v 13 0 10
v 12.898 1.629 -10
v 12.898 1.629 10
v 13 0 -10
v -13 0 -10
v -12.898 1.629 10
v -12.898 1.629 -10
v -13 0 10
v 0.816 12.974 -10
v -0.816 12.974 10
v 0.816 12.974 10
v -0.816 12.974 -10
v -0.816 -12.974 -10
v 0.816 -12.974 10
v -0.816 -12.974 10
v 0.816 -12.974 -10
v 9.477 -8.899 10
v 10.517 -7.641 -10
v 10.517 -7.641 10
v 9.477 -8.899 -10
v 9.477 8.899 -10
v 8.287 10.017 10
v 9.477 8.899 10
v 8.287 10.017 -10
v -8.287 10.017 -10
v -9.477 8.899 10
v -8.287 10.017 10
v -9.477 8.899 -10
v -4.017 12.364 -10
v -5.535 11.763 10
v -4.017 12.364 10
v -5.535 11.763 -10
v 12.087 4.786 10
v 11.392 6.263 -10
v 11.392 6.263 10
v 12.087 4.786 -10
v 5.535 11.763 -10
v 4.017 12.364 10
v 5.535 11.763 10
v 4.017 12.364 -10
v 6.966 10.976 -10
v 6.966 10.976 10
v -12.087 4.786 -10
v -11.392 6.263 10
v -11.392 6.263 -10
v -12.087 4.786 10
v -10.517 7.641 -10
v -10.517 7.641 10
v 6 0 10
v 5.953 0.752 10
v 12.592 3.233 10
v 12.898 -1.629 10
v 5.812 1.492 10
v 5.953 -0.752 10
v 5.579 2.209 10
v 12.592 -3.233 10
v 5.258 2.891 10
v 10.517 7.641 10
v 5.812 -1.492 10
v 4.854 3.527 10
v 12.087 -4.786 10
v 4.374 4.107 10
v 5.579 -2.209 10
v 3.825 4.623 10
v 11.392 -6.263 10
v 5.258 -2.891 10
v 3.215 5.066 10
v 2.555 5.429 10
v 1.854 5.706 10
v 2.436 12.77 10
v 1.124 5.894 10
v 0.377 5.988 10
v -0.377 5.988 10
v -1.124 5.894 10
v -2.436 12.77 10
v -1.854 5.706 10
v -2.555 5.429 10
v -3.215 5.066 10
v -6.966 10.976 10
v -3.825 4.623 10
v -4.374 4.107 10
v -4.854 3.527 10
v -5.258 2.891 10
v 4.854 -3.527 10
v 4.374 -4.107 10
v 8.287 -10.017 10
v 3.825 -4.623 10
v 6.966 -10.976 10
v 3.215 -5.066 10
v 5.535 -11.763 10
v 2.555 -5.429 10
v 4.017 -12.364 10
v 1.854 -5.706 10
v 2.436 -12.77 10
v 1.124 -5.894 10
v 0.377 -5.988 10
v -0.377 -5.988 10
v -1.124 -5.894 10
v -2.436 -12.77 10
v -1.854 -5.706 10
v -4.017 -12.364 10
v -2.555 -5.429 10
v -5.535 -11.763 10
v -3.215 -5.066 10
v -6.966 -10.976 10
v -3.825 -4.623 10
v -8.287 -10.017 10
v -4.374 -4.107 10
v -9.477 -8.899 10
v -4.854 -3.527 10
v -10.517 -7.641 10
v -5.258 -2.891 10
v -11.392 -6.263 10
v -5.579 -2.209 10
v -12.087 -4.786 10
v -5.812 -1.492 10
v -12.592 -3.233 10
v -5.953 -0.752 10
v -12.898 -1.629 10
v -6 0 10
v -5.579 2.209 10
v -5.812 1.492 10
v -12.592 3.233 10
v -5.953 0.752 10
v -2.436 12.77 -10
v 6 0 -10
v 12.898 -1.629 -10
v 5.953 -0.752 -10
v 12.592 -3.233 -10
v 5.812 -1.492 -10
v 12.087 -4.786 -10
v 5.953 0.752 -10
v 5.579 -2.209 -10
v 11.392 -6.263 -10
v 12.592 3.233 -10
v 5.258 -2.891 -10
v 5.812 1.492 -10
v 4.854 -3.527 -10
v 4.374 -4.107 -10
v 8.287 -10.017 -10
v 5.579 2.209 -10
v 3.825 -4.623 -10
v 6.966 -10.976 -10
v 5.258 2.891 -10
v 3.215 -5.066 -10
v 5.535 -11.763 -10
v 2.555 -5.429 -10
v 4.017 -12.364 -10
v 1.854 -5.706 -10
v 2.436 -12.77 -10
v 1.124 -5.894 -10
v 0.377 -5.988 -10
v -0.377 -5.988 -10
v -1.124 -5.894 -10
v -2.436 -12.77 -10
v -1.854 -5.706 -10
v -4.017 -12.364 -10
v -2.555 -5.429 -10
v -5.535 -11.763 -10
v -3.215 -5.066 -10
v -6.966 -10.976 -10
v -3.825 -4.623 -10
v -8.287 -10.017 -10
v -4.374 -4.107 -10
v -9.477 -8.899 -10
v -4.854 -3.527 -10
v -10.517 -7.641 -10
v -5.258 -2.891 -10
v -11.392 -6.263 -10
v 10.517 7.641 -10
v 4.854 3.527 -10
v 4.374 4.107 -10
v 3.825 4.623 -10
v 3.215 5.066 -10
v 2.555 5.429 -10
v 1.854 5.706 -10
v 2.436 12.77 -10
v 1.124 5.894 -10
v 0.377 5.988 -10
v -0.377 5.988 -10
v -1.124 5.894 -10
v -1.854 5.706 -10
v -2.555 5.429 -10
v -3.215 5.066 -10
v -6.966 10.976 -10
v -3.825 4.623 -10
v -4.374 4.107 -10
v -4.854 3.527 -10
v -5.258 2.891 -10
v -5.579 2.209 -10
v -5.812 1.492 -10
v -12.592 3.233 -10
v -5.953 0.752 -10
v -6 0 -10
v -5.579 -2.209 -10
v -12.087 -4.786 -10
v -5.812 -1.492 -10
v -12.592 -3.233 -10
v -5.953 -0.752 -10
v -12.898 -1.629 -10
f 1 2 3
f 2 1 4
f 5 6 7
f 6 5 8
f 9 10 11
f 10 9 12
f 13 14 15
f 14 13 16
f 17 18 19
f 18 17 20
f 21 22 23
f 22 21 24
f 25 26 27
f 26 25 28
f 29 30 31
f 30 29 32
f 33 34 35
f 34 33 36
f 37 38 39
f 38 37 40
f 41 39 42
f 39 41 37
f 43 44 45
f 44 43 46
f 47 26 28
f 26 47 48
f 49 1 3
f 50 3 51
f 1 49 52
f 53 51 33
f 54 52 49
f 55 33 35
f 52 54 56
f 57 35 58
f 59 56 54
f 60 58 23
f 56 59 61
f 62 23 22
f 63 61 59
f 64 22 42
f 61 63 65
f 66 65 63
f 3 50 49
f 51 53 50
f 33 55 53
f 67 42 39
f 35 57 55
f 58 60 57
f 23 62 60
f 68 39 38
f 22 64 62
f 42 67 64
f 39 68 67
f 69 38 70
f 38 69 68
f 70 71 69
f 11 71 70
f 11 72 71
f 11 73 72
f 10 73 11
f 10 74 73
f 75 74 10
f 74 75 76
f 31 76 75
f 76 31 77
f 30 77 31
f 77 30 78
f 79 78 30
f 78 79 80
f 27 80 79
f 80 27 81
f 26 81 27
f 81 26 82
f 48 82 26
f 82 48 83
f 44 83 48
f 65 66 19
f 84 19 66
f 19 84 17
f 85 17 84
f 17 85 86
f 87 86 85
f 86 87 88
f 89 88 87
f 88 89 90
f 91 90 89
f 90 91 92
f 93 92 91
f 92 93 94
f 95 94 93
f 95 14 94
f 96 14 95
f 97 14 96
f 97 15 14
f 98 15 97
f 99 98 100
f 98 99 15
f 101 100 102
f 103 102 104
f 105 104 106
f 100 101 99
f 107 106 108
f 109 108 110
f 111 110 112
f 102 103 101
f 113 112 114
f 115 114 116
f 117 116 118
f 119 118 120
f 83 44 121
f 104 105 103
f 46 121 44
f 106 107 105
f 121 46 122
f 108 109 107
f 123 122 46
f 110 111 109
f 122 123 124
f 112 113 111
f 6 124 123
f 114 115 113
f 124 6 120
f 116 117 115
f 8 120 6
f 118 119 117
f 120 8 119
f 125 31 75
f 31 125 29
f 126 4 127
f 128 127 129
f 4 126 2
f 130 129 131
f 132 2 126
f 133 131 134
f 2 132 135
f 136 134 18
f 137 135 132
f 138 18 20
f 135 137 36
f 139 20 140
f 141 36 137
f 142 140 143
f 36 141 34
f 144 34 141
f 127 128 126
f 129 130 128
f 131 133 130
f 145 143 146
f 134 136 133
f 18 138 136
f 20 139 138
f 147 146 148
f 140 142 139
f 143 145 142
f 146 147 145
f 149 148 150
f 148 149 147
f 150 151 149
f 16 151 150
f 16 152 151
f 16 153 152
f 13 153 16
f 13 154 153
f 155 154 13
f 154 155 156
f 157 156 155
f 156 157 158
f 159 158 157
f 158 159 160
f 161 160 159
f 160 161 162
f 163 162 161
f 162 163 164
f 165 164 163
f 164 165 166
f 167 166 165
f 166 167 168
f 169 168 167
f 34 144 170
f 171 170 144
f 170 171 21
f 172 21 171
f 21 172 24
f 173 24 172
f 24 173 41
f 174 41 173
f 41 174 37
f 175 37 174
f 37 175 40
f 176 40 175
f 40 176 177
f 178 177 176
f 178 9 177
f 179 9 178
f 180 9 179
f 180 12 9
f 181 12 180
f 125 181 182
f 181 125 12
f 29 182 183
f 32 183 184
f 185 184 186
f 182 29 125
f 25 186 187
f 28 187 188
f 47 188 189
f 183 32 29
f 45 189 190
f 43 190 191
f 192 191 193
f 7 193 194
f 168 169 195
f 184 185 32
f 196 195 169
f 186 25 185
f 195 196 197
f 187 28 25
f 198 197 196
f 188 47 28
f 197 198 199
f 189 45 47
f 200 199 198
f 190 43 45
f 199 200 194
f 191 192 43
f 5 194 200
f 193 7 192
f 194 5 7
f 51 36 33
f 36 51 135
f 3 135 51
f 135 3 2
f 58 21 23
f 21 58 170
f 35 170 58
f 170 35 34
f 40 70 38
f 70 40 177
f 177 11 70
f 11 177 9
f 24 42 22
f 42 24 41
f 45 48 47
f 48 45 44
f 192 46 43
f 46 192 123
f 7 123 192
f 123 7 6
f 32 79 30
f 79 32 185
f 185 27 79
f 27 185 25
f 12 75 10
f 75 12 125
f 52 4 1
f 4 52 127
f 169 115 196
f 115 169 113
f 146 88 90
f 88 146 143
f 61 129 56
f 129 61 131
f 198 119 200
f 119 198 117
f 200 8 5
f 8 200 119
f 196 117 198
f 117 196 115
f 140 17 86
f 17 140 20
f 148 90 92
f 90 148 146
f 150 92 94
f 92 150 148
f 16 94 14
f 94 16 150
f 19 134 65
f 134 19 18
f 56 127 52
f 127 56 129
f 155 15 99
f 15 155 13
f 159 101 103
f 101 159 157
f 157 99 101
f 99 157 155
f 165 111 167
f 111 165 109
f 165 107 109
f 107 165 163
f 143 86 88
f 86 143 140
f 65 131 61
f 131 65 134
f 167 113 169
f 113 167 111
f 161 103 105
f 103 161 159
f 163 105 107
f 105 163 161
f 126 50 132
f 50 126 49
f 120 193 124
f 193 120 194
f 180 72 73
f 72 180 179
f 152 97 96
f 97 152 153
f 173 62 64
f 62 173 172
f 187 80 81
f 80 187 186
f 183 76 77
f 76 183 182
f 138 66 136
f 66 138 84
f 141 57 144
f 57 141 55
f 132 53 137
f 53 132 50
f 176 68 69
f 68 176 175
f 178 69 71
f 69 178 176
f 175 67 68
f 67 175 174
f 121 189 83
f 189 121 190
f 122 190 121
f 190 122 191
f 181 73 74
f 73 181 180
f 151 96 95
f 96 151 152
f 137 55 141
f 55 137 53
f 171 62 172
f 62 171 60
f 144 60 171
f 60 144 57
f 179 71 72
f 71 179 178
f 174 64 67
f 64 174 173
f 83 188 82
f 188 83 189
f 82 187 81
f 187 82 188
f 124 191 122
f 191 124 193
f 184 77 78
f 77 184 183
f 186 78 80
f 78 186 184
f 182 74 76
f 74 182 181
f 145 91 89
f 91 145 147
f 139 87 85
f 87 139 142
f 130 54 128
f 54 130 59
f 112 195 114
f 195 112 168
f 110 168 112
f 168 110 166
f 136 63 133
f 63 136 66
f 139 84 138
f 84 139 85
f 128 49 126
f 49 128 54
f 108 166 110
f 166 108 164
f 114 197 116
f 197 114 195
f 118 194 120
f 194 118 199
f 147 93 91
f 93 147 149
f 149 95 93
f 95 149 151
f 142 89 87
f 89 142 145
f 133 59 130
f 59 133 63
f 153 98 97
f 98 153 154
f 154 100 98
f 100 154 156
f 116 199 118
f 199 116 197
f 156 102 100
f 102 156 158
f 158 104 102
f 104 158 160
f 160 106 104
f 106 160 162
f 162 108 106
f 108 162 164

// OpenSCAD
$fn = 50;


difference() {
	union() {
		translate(v = [0, 0, -10.0000000000]) {
			cylinder(h = 20, r = 13.0000000000);
		}
	}
	union() {
		translate(v = [0, 0, -100.0000000000]) {
			cylinder(h = 200, r = 6);
		}
	}
}
